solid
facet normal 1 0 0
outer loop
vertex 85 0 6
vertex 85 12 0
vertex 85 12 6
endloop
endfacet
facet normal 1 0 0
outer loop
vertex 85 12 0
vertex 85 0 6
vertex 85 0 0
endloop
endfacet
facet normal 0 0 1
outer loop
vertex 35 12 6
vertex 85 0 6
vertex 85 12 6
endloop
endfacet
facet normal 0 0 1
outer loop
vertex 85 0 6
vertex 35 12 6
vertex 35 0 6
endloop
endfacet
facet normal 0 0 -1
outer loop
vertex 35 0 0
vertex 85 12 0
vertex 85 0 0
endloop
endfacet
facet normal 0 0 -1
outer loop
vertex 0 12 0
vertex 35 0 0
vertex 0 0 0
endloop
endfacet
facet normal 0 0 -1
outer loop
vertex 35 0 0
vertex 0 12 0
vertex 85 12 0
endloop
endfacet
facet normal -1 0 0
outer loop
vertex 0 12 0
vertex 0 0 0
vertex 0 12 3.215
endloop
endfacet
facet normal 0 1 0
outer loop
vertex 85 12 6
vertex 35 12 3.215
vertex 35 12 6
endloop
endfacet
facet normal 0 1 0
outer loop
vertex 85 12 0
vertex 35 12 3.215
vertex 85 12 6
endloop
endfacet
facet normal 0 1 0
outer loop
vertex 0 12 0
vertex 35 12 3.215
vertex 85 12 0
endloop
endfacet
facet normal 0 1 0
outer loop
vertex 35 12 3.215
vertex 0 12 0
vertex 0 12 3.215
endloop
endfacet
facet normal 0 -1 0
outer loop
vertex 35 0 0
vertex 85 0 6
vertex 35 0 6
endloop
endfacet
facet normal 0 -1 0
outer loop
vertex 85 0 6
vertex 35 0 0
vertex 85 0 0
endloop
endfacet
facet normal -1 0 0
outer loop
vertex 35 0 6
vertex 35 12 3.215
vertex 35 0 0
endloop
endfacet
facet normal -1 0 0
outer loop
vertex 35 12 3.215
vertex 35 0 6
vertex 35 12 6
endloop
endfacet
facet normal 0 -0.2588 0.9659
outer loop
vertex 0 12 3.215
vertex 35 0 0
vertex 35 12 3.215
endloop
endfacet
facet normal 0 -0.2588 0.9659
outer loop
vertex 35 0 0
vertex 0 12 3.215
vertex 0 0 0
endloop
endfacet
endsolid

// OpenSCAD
bladelenght = 35;
bladeangle = 15;
handlelenght = 50;
knifelenght = bladelenght+handlelenght;
knifethickness =  6;
knifewidth = 12;

module knife(){
   difference(){
       cube([knifelenght,knifewidth,knifethickness]);
       rotate([bladeangle,0,0])cube([bladelenght,knifewidth+1000,knifethickness]);
       
       }

    }


knife();
